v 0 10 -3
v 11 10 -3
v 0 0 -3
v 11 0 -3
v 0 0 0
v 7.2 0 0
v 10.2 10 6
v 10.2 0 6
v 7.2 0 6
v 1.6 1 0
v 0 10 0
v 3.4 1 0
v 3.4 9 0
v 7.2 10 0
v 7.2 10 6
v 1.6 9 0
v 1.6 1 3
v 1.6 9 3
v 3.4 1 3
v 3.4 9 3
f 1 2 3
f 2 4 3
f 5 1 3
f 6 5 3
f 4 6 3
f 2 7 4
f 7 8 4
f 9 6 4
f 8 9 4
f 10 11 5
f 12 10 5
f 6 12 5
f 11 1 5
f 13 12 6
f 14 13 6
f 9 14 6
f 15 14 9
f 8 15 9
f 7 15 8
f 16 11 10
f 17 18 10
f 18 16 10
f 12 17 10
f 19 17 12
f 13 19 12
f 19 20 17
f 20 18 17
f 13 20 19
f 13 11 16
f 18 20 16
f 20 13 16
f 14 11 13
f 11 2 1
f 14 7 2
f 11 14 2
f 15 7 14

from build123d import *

# Parameters (mm, degrees)
BOSS_EXTRUDE1_DEPTH = 10
SKETCH2_W           = 1.8
SKETCH2_H           = 8
BOSS_EXTRUDE2_DEPTH = 3


with BuildPart() as part:
    # Sketch1 → Boss-Extrude1 (new body)
    with BuildSketch(Plane(origin=(0, 0, 0), x_dir=(1, 0, 0), z_dir=(0, 1, 0))):
        Polygon((0, 0), (7.2, 0), (7.2, -6), (10.2, -6), (11, 3), (0, 3), align=None)
    extrude(amount=BOSS_EXTRUDE1_DEPTH)

    # Sketch2 → Boss-Extrude2 (add)
    with BuildSketch(Plane.XY):
        with Locations((2.5, 5)):
            Rectangle(SKETCH2_W, SKETCH2_H)
    extrude(amount=BOSS_EXTRUDE2_DEPTH)


solid = part.part
